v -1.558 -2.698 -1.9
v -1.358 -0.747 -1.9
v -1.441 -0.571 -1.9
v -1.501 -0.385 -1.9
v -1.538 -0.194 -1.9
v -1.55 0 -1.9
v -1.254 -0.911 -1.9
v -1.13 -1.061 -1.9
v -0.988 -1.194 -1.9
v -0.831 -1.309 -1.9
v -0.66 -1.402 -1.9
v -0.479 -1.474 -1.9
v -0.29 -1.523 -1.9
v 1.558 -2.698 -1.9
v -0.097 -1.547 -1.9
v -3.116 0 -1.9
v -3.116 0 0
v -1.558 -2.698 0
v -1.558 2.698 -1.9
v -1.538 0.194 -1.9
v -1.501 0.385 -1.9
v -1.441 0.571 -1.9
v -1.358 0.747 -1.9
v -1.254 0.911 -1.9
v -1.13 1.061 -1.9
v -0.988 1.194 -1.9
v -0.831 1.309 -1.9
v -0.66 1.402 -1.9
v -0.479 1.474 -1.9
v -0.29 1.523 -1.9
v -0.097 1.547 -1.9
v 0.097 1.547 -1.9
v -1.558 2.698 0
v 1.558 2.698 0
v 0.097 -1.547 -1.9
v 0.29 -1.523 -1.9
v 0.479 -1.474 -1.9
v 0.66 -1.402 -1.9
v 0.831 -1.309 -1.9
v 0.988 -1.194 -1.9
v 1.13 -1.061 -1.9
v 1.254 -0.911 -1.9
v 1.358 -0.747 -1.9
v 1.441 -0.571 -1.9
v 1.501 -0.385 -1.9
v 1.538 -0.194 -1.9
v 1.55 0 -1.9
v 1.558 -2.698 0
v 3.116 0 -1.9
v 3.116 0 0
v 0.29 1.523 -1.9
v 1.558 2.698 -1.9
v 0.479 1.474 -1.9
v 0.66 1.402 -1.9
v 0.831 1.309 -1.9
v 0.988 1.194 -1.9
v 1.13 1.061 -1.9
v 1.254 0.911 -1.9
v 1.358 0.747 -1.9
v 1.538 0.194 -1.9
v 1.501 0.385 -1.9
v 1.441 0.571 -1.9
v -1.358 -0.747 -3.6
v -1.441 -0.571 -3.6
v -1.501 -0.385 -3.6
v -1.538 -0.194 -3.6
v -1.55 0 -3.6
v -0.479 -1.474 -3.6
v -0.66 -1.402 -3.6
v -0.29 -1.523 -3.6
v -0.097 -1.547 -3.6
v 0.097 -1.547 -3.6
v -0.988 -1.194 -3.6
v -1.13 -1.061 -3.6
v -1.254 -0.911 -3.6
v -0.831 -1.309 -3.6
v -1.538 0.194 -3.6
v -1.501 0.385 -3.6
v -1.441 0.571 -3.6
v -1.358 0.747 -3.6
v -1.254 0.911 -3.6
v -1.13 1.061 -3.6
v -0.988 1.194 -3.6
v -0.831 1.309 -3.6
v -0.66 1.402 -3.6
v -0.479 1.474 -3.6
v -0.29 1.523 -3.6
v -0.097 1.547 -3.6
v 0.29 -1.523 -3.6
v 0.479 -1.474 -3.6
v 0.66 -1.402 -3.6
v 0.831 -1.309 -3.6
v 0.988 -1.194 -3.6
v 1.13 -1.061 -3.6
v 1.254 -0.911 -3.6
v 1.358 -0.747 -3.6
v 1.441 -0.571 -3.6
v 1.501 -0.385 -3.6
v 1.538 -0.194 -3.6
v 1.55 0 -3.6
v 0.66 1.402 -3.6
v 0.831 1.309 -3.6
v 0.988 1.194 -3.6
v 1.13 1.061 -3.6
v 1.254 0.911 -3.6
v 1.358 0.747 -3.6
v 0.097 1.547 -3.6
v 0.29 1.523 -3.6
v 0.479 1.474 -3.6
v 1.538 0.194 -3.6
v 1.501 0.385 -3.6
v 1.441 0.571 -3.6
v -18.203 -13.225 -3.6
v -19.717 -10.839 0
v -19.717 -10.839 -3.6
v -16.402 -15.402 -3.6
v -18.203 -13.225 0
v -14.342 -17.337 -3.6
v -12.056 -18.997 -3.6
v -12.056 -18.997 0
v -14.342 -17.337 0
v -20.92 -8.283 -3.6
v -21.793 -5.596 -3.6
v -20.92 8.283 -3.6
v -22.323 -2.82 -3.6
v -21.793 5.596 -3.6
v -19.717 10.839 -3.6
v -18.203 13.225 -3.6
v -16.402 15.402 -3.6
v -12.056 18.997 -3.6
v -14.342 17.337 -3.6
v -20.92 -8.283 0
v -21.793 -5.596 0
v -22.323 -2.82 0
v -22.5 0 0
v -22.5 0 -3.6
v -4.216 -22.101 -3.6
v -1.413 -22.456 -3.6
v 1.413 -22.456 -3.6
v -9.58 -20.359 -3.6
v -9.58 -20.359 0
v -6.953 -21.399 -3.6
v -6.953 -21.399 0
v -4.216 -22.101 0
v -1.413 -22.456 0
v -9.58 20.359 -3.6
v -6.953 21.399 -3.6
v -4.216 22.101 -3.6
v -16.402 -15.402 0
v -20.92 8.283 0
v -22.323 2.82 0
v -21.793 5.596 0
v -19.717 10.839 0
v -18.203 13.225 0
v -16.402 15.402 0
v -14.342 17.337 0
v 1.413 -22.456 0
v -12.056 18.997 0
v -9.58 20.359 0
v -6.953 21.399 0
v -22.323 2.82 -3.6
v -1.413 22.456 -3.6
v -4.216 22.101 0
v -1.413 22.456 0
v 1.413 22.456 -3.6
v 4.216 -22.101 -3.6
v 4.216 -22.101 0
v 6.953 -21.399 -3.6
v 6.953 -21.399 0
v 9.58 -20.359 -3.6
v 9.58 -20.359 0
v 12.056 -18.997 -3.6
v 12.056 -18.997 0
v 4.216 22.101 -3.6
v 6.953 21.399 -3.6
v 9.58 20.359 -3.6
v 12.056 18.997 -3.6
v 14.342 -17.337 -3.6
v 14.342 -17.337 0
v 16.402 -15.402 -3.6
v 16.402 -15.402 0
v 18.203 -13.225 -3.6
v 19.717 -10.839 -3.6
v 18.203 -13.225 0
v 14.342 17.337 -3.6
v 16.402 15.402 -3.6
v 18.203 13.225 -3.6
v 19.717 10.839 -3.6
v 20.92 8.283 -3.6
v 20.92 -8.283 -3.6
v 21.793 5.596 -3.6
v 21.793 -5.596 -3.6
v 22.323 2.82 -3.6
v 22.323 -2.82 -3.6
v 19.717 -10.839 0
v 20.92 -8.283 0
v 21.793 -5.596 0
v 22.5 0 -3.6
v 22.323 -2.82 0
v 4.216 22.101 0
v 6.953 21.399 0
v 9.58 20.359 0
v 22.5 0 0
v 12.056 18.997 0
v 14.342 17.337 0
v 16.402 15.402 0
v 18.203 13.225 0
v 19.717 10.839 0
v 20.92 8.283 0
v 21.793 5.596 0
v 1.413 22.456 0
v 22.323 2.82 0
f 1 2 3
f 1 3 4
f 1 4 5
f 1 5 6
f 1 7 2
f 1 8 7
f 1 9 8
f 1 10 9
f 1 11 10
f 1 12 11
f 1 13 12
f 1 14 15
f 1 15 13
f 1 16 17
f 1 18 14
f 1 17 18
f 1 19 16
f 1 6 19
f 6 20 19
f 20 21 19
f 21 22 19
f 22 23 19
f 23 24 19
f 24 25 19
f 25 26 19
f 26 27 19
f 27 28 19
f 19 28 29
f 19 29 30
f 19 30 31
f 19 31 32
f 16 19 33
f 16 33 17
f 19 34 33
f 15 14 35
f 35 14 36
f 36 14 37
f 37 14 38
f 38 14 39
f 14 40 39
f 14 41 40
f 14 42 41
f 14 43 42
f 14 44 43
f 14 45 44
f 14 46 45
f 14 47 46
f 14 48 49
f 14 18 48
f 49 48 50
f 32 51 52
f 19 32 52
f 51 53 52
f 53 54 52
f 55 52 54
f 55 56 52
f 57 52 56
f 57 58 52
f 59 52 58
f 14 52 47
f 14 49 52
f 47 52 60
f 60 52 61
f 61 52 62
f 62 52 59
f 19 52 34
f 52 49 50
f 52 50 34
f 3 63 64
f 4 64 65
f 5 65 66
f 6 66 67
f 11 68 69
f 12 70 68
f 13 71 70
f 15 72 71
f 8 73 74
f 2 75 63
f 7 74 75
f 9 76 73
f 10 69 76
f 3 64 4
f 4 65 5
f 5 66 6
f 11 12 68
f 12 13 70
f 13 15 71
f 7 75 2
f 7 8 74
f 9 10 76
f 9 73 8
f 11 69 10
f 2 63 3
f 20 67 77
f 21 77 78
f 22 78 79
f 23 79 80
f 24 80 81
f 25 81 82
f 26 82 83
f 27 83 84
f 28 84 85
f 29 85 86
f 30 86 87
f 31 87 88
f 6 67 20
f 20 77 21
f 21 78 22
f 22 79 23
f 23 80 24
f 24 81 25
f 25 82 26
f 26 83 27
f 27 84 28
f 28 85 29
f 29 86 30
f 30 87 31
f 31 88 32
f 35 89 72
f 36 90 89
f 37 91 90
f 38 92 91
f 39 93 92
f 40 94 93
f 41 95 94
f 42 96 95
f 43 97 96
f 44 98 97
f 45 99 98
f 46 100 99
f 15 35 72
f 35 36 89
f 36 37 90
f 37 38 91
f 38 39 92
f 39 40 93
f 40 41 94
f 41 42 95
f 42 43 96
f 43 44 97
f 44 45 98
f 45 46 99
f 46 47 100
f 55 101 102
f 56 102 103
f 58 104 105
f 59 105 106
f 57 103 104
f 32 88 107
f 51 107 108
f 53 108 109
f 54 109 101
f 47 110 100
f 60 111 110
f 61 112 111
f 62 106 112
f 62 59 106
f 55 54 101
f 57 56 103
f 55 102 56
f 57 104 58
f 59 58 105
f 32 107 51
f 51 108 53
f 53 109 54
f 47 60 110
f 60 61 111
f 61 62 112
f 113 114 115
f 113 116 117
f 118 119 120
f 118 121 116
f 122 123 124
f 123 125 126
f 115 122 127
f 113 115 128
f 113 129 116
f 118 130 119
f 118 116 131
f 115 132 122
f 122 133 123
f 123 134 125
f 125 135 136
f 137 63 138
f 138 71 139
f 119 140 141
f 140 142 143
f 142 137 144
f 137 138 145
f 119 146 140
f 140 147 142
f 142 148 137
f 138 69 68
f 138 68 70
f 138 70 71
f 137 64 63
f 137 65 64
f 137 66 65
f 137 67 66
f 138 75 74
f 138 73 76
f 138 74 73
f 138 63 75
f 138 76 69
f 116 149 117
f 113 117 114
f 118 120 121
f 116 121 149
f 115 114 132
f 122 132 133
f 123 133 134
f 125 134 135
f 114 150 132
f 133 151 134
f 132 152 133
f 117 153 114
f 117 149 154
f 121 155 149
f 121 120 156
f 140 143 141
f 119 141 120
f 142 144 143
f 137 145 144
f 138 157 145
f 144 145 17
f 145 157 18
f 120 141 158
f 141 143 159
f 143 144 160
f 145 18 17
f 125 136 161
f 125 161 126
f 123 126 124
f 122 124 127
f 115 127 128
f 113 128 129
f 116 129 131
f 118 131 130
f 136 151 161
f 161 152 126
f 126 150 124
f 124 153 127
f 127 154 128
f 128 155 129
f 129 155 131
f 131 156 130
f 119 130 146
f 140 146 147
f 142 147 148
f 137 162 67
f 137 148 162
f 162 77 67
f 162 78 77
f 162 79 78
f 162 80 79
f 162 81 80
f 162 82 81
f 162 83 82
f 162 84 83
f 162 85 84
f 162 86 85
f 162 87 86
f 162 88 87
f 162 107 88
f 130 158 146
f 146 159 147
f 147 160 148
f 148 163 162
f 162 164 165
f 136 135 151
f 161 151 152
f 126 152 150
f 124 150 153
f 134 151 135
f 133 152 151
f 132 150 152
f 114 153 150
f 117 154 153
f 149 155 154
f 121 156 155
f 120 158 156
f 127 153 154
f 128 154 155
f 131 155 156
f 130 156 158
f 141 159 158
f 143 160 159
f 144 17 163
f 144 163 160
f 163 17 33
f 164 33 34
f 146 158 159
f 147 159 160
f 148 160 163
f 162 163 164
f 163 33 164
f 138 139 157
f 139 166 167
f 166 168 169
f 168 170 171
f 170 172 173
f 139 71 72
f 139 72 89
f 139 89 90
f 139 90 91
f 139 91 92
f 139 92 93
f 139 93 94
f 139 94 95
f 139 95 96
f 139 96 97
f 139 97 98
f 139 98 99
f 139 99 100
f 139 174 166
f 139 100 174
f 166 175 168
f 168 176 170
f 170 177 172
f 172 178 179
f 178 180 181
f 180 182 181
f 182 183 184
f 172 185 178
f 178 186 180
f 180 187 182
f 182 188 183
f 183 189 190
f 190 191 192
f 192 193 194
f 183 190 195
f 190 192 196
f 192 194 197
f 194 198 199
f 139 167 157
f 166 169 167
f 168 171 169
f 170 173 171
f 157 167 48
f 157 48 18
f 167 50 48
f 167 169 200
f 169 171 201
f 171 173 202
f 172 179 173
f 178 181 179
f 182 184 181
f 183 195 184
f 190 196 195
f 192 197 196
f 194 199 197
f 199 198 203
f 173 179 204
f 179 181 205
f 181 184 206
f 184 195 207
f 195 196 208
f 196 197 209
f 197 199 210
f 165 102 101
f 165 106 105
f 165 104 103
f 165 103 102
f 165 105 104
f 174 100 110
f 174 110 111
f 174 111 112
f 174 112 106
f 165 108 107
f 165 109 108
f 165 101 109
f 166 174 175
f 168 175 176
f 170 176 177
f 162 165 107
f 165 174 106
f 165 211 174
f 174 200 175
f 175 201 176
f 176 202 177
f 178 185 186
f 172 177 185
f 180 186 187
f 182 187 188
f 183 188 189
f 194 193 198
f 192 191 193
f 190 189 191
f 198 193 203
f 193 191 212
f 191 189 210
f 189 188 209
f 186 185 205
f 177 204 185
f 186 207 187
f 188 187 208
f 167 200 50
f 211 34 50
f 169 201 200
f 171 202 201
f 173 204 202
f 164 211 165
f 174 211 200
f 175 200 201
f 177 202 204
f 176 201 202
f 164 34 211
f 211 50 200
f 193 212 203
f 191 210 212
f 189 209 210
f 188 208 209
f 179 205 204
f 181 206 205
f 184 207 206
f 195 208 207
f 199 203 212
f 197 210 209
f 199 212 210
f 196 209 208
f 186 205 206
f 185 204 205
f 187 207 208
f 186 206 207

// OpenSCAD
$fn = 50;

difference() {
	union() {
		translate(v = [0, 0, -3.6]) {
			cylinder(h = 3.6, r = 22.5);
		}
	}
	union() {
		translate(v = [0, 0, 0]) {
			rotate(a = [0, 0, 0]) {
				difference() {
					union() {
						translate(v = [0, 0, -1.9]) {
							linear_extrude(height = 1.9) {
								polygon(points = [[3.1158, 0.0], [1.5579000000000005, 2.698361953111554], [-1.5578999999999994, 2.6983619531115544], [-3.1158, 3.815754496783323e-16], [-1.5579000000000014, -2.6983619531115535], [1.557899999999998, -2.6983619531115552]]);
							}
						}
					}
					union();
				}
			}
		}
		#translate(v = [0, 0, -100.0]) {
			cylinder(h = 200, r = 1.55);
		}
	}
}
